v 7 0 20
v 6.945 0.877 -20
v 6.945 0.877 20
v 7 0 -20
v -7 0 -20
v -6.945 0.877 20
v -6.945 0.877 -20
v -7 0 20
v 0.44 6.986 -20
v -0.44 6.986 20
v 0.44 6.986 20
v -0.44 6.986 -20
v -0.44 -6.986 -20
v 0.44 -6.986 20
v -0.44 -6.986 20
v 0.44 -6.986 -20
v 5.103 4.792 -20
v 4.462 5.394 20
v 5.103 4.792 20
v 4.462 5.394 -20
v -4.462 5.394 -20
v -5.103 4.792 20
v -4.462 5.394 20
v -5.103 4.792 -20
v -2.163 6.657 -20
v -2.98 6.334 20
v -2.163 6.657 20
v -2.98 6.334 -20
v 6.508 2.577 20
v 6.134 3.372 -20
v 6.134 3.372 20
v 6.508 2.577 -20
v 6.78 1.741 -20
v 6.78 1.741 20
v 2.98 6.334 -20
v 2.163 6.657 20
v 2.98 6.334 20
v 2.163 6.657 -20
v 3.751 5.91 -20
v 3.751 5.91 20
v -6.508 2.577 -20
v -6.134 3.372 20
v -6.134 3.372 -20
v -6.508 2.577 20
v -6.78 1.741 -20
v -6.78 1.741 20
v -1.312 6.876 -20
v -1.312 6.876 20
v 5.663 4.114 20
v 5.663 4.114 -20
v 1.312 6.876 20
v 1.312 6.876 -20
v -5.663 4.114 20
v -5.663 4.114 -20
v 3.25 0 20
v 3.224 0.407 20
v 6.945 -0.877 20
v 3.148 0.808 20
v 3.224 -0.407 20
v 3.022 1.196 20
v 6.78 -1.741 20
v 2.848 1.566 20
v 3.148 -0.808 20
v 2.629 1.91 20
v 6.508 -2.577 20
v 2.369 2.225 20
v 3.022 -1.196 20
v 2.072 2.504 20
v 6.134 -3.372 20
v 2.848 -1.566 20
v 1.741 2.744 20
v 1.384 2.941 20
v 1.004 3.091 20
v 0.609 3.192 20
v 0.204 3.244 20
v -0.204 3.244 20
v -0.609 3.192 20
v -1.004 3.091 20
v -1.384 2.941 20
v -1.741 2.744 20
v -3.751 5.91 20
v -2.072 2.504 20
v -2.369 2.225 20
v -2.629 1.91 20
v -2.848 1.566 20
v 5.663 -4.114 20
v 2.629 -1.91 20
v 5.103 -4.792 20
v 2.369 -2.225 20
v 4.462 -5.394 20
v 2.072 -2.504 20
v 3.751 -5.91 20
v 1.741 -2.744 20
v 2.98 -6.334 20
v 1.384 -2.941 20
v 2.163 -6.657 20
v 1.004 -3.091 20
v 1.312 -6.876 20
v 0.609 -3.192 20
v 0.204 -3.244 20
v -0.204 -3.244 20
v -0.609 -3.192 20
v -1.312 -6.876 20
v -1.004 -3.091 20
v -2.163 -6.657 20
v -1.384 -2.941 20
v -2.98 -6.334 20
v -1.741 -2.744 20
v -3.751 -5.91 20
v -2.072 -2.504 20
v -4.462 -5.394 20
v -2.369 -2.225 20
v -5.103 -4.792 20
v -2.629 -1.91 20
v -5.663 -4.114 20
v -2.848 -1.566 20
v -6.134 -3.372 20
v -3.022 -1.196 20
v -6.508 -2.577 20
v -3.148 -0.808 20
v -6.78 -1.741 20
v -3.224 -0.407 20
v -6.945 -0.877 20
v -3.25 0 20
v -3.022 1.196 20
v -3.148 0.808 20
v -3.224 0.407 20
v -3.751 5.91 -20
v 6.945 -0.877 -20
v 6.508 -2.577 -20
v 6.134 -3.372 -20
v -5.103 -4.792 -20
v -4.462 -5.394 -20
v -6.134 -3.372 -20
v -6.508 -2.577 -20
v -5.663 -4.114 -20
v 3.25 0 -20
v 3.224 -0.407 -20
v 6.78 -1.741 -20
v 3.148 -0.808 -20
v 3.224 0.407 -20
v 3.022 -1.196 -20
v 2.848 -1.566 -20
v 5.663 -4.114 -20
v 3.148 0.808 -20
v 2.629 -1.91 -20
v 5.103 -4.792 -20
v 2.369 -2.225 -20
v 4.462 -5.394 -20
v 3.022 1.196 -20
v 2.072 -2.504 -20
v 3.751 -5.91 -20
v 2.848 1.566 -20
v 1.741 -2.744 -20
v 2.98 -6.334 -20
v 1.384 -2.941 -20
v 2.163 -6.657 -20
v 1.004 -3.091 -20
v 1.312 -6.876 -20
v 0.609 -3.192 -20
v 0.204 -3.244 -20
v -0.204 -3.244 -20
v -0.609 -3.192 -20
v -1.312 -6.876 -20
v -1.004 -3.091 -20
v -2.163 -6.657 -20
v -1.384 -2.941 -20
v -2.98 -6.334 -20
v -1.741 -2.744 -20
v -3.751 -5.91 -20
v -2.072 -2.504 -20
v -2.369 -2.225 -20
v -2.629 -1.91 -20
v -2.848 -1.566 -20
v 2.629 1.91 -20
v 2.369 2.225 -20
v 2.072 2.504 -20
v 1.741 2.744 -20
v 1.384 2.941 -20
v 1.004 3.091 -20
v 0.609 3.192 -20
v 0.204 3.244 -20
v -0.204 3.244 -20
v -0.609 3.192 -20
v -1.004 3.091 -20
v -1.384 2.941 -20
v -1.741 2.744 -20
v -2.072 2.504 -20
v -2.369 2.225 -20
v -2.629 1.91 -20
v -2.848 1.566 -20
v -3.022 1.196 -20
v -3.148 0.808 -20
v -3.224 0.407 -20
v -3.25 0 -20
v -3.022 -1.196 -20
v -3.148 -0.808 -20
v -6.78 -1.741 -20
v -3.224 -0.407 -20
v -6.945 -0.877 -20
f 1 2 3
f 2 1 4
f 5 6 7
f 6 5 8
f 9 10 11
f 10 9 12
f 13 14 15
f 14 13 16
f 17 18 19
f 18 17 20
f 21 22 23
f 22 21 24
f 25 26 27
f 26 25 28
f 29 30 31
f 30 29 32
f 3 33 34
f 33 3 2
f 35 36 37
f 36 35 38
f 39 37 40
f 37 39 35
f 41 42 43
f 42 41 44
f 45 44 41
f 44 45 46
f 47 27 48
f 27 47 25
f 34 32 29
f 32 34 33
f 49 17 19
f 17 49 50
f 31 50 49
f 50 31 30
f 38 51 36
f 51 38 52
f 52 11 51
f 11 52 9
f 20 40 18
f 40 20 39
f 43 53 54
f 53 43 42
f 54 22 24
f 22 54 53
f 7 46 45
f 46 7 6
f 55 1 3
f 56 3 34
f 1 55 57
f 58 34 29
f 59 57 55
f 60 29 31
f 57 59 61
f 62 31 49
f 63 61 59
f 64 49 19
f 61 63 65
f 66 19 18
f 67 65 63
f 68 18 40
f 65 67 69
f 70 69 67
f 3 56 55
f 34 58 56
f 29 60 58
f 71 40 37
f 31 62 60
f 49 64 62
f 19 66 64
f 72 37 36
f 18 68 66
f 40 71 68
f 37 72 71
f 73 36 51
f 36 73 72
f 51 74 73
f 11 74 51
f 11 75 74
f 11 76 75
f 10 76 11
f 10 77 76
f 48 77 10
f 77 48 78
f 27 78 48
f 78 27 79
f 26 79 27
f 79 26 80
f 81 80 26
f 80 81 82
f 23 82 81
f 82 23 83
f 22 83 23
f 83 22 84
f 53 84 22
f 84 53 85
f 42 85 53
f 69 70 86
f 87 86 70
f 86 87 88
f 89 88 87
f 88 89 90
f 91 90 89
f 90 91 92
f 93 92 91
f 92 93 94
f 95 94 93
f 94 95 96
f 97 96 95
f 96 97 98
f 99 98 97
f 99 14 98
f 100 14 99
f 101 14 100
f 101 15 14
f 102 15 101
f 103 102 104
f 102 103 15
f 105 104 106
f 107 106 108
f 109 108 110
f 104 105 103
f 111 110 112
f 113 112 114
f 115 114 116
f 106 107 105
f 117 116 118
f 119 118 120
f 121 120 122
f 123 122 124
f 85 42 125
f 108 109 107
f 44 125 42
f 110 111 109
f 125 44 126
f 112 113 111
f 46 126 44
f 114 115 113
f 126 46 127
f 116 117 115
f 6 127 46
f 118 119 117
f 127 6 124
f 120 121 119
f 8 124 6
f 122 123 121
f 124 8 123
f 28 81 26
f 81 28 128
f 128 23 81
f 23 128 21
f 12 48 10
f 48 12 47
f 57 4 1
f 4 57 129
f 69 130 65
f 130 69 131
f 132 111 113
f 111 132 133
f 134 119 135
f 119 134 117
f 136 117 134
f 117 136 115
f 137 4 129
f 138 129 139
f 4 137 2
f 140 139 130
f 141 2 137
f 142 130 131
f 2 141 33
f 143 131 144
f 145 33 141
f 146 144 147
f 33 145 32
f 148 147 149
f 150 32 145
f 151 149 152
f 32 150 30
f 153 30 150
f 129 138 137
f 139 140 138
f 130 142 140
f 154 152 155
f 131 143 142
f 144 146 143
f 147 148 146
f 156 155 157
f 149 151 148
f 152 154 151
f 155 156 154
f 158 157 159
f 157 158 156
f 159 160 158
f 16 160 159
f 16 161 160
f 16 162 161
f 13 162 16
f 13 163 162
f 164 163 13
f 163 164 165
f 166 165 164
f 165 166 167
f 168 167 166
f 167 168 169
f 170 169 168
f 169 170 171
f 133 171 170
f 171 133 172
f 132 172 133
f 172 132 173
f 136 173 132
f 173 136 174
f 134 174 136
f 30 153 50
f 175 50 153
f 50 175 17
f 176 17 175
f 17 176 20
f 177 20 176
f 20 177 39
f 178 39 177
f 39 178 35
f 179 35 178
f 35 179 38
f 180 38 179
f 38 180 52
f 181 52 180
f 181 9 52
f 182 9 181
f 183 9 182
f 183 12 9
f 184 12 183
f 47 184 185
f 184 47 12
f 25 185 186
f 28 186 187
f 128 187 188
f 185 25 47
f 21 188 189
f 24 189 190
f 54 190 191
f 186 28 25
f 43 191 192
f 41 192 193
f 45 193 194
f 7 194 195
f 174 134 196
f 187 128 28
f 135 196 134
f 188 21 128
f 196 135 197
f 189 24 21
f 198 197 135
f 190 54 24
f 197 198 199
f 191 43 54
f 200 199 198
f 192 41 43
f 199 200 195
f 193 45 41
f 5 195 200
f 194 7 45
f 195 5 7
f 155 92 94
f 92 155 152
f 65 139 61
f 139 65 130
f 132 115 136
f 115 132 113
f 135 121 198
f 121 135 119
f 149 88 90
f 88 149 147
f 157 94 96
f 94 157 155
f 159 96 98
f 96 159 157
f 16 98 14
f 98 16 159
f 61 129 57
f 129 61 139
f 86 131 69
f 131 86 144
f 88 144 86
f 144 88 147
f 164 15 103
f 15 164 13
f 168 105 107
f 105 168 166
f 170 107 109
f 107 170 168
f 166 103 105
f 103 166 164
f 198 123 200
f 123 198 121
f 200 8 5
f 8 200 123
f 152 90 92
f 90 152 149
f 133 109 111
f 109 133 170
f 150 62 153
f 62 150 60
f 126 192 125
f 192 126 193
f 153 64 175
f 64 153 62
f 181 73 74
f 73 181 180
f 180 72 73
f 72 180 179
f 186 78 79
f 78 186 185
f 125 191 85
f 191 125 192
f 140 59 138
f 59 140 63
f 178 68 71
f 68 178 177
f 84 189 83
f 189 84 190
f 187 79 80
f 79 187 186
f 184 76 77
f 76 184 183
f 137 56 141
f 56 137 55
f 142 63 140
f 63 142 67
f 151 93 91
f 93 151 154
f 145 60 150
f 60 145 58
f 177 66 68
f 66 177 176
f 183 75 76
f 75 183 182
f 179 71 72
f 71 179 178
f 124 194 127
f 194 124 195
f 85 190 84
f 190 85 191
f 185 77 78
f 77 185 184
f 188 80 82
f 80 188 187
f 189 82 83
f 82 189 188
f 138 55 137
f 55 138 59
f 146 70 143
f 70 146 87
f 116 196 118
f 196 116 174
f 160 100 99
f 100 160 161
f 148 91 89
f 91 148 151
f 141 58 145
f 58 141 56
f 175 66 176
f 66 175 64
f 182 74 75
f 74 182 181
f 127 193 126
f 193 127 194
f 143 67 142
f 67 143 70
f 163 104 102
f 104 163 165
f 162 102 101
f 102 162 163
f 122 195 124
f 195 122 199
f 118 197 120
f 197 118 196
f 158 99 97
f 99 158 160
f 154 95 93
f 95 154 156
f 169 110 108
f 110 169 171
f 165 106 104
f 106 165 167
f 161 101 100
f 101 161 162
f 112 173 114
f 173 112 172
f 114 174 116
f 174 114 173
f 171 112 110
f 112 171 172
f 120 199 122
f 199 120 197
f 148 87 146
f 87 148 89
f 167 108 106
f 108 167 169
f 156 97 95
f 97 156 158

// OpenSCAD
$fn = 50;


difference() {
	union() {
		translate(v = [0, 0, -20.0000000000]) {
			cylinder(h = 40, r = 7.0000000000);
		}
	}
	union() {
		translate(v = [0, 0, -100.0000000000]) {
			cylinder(h = 200, r = 3.2500000000);
		}
	}
}
